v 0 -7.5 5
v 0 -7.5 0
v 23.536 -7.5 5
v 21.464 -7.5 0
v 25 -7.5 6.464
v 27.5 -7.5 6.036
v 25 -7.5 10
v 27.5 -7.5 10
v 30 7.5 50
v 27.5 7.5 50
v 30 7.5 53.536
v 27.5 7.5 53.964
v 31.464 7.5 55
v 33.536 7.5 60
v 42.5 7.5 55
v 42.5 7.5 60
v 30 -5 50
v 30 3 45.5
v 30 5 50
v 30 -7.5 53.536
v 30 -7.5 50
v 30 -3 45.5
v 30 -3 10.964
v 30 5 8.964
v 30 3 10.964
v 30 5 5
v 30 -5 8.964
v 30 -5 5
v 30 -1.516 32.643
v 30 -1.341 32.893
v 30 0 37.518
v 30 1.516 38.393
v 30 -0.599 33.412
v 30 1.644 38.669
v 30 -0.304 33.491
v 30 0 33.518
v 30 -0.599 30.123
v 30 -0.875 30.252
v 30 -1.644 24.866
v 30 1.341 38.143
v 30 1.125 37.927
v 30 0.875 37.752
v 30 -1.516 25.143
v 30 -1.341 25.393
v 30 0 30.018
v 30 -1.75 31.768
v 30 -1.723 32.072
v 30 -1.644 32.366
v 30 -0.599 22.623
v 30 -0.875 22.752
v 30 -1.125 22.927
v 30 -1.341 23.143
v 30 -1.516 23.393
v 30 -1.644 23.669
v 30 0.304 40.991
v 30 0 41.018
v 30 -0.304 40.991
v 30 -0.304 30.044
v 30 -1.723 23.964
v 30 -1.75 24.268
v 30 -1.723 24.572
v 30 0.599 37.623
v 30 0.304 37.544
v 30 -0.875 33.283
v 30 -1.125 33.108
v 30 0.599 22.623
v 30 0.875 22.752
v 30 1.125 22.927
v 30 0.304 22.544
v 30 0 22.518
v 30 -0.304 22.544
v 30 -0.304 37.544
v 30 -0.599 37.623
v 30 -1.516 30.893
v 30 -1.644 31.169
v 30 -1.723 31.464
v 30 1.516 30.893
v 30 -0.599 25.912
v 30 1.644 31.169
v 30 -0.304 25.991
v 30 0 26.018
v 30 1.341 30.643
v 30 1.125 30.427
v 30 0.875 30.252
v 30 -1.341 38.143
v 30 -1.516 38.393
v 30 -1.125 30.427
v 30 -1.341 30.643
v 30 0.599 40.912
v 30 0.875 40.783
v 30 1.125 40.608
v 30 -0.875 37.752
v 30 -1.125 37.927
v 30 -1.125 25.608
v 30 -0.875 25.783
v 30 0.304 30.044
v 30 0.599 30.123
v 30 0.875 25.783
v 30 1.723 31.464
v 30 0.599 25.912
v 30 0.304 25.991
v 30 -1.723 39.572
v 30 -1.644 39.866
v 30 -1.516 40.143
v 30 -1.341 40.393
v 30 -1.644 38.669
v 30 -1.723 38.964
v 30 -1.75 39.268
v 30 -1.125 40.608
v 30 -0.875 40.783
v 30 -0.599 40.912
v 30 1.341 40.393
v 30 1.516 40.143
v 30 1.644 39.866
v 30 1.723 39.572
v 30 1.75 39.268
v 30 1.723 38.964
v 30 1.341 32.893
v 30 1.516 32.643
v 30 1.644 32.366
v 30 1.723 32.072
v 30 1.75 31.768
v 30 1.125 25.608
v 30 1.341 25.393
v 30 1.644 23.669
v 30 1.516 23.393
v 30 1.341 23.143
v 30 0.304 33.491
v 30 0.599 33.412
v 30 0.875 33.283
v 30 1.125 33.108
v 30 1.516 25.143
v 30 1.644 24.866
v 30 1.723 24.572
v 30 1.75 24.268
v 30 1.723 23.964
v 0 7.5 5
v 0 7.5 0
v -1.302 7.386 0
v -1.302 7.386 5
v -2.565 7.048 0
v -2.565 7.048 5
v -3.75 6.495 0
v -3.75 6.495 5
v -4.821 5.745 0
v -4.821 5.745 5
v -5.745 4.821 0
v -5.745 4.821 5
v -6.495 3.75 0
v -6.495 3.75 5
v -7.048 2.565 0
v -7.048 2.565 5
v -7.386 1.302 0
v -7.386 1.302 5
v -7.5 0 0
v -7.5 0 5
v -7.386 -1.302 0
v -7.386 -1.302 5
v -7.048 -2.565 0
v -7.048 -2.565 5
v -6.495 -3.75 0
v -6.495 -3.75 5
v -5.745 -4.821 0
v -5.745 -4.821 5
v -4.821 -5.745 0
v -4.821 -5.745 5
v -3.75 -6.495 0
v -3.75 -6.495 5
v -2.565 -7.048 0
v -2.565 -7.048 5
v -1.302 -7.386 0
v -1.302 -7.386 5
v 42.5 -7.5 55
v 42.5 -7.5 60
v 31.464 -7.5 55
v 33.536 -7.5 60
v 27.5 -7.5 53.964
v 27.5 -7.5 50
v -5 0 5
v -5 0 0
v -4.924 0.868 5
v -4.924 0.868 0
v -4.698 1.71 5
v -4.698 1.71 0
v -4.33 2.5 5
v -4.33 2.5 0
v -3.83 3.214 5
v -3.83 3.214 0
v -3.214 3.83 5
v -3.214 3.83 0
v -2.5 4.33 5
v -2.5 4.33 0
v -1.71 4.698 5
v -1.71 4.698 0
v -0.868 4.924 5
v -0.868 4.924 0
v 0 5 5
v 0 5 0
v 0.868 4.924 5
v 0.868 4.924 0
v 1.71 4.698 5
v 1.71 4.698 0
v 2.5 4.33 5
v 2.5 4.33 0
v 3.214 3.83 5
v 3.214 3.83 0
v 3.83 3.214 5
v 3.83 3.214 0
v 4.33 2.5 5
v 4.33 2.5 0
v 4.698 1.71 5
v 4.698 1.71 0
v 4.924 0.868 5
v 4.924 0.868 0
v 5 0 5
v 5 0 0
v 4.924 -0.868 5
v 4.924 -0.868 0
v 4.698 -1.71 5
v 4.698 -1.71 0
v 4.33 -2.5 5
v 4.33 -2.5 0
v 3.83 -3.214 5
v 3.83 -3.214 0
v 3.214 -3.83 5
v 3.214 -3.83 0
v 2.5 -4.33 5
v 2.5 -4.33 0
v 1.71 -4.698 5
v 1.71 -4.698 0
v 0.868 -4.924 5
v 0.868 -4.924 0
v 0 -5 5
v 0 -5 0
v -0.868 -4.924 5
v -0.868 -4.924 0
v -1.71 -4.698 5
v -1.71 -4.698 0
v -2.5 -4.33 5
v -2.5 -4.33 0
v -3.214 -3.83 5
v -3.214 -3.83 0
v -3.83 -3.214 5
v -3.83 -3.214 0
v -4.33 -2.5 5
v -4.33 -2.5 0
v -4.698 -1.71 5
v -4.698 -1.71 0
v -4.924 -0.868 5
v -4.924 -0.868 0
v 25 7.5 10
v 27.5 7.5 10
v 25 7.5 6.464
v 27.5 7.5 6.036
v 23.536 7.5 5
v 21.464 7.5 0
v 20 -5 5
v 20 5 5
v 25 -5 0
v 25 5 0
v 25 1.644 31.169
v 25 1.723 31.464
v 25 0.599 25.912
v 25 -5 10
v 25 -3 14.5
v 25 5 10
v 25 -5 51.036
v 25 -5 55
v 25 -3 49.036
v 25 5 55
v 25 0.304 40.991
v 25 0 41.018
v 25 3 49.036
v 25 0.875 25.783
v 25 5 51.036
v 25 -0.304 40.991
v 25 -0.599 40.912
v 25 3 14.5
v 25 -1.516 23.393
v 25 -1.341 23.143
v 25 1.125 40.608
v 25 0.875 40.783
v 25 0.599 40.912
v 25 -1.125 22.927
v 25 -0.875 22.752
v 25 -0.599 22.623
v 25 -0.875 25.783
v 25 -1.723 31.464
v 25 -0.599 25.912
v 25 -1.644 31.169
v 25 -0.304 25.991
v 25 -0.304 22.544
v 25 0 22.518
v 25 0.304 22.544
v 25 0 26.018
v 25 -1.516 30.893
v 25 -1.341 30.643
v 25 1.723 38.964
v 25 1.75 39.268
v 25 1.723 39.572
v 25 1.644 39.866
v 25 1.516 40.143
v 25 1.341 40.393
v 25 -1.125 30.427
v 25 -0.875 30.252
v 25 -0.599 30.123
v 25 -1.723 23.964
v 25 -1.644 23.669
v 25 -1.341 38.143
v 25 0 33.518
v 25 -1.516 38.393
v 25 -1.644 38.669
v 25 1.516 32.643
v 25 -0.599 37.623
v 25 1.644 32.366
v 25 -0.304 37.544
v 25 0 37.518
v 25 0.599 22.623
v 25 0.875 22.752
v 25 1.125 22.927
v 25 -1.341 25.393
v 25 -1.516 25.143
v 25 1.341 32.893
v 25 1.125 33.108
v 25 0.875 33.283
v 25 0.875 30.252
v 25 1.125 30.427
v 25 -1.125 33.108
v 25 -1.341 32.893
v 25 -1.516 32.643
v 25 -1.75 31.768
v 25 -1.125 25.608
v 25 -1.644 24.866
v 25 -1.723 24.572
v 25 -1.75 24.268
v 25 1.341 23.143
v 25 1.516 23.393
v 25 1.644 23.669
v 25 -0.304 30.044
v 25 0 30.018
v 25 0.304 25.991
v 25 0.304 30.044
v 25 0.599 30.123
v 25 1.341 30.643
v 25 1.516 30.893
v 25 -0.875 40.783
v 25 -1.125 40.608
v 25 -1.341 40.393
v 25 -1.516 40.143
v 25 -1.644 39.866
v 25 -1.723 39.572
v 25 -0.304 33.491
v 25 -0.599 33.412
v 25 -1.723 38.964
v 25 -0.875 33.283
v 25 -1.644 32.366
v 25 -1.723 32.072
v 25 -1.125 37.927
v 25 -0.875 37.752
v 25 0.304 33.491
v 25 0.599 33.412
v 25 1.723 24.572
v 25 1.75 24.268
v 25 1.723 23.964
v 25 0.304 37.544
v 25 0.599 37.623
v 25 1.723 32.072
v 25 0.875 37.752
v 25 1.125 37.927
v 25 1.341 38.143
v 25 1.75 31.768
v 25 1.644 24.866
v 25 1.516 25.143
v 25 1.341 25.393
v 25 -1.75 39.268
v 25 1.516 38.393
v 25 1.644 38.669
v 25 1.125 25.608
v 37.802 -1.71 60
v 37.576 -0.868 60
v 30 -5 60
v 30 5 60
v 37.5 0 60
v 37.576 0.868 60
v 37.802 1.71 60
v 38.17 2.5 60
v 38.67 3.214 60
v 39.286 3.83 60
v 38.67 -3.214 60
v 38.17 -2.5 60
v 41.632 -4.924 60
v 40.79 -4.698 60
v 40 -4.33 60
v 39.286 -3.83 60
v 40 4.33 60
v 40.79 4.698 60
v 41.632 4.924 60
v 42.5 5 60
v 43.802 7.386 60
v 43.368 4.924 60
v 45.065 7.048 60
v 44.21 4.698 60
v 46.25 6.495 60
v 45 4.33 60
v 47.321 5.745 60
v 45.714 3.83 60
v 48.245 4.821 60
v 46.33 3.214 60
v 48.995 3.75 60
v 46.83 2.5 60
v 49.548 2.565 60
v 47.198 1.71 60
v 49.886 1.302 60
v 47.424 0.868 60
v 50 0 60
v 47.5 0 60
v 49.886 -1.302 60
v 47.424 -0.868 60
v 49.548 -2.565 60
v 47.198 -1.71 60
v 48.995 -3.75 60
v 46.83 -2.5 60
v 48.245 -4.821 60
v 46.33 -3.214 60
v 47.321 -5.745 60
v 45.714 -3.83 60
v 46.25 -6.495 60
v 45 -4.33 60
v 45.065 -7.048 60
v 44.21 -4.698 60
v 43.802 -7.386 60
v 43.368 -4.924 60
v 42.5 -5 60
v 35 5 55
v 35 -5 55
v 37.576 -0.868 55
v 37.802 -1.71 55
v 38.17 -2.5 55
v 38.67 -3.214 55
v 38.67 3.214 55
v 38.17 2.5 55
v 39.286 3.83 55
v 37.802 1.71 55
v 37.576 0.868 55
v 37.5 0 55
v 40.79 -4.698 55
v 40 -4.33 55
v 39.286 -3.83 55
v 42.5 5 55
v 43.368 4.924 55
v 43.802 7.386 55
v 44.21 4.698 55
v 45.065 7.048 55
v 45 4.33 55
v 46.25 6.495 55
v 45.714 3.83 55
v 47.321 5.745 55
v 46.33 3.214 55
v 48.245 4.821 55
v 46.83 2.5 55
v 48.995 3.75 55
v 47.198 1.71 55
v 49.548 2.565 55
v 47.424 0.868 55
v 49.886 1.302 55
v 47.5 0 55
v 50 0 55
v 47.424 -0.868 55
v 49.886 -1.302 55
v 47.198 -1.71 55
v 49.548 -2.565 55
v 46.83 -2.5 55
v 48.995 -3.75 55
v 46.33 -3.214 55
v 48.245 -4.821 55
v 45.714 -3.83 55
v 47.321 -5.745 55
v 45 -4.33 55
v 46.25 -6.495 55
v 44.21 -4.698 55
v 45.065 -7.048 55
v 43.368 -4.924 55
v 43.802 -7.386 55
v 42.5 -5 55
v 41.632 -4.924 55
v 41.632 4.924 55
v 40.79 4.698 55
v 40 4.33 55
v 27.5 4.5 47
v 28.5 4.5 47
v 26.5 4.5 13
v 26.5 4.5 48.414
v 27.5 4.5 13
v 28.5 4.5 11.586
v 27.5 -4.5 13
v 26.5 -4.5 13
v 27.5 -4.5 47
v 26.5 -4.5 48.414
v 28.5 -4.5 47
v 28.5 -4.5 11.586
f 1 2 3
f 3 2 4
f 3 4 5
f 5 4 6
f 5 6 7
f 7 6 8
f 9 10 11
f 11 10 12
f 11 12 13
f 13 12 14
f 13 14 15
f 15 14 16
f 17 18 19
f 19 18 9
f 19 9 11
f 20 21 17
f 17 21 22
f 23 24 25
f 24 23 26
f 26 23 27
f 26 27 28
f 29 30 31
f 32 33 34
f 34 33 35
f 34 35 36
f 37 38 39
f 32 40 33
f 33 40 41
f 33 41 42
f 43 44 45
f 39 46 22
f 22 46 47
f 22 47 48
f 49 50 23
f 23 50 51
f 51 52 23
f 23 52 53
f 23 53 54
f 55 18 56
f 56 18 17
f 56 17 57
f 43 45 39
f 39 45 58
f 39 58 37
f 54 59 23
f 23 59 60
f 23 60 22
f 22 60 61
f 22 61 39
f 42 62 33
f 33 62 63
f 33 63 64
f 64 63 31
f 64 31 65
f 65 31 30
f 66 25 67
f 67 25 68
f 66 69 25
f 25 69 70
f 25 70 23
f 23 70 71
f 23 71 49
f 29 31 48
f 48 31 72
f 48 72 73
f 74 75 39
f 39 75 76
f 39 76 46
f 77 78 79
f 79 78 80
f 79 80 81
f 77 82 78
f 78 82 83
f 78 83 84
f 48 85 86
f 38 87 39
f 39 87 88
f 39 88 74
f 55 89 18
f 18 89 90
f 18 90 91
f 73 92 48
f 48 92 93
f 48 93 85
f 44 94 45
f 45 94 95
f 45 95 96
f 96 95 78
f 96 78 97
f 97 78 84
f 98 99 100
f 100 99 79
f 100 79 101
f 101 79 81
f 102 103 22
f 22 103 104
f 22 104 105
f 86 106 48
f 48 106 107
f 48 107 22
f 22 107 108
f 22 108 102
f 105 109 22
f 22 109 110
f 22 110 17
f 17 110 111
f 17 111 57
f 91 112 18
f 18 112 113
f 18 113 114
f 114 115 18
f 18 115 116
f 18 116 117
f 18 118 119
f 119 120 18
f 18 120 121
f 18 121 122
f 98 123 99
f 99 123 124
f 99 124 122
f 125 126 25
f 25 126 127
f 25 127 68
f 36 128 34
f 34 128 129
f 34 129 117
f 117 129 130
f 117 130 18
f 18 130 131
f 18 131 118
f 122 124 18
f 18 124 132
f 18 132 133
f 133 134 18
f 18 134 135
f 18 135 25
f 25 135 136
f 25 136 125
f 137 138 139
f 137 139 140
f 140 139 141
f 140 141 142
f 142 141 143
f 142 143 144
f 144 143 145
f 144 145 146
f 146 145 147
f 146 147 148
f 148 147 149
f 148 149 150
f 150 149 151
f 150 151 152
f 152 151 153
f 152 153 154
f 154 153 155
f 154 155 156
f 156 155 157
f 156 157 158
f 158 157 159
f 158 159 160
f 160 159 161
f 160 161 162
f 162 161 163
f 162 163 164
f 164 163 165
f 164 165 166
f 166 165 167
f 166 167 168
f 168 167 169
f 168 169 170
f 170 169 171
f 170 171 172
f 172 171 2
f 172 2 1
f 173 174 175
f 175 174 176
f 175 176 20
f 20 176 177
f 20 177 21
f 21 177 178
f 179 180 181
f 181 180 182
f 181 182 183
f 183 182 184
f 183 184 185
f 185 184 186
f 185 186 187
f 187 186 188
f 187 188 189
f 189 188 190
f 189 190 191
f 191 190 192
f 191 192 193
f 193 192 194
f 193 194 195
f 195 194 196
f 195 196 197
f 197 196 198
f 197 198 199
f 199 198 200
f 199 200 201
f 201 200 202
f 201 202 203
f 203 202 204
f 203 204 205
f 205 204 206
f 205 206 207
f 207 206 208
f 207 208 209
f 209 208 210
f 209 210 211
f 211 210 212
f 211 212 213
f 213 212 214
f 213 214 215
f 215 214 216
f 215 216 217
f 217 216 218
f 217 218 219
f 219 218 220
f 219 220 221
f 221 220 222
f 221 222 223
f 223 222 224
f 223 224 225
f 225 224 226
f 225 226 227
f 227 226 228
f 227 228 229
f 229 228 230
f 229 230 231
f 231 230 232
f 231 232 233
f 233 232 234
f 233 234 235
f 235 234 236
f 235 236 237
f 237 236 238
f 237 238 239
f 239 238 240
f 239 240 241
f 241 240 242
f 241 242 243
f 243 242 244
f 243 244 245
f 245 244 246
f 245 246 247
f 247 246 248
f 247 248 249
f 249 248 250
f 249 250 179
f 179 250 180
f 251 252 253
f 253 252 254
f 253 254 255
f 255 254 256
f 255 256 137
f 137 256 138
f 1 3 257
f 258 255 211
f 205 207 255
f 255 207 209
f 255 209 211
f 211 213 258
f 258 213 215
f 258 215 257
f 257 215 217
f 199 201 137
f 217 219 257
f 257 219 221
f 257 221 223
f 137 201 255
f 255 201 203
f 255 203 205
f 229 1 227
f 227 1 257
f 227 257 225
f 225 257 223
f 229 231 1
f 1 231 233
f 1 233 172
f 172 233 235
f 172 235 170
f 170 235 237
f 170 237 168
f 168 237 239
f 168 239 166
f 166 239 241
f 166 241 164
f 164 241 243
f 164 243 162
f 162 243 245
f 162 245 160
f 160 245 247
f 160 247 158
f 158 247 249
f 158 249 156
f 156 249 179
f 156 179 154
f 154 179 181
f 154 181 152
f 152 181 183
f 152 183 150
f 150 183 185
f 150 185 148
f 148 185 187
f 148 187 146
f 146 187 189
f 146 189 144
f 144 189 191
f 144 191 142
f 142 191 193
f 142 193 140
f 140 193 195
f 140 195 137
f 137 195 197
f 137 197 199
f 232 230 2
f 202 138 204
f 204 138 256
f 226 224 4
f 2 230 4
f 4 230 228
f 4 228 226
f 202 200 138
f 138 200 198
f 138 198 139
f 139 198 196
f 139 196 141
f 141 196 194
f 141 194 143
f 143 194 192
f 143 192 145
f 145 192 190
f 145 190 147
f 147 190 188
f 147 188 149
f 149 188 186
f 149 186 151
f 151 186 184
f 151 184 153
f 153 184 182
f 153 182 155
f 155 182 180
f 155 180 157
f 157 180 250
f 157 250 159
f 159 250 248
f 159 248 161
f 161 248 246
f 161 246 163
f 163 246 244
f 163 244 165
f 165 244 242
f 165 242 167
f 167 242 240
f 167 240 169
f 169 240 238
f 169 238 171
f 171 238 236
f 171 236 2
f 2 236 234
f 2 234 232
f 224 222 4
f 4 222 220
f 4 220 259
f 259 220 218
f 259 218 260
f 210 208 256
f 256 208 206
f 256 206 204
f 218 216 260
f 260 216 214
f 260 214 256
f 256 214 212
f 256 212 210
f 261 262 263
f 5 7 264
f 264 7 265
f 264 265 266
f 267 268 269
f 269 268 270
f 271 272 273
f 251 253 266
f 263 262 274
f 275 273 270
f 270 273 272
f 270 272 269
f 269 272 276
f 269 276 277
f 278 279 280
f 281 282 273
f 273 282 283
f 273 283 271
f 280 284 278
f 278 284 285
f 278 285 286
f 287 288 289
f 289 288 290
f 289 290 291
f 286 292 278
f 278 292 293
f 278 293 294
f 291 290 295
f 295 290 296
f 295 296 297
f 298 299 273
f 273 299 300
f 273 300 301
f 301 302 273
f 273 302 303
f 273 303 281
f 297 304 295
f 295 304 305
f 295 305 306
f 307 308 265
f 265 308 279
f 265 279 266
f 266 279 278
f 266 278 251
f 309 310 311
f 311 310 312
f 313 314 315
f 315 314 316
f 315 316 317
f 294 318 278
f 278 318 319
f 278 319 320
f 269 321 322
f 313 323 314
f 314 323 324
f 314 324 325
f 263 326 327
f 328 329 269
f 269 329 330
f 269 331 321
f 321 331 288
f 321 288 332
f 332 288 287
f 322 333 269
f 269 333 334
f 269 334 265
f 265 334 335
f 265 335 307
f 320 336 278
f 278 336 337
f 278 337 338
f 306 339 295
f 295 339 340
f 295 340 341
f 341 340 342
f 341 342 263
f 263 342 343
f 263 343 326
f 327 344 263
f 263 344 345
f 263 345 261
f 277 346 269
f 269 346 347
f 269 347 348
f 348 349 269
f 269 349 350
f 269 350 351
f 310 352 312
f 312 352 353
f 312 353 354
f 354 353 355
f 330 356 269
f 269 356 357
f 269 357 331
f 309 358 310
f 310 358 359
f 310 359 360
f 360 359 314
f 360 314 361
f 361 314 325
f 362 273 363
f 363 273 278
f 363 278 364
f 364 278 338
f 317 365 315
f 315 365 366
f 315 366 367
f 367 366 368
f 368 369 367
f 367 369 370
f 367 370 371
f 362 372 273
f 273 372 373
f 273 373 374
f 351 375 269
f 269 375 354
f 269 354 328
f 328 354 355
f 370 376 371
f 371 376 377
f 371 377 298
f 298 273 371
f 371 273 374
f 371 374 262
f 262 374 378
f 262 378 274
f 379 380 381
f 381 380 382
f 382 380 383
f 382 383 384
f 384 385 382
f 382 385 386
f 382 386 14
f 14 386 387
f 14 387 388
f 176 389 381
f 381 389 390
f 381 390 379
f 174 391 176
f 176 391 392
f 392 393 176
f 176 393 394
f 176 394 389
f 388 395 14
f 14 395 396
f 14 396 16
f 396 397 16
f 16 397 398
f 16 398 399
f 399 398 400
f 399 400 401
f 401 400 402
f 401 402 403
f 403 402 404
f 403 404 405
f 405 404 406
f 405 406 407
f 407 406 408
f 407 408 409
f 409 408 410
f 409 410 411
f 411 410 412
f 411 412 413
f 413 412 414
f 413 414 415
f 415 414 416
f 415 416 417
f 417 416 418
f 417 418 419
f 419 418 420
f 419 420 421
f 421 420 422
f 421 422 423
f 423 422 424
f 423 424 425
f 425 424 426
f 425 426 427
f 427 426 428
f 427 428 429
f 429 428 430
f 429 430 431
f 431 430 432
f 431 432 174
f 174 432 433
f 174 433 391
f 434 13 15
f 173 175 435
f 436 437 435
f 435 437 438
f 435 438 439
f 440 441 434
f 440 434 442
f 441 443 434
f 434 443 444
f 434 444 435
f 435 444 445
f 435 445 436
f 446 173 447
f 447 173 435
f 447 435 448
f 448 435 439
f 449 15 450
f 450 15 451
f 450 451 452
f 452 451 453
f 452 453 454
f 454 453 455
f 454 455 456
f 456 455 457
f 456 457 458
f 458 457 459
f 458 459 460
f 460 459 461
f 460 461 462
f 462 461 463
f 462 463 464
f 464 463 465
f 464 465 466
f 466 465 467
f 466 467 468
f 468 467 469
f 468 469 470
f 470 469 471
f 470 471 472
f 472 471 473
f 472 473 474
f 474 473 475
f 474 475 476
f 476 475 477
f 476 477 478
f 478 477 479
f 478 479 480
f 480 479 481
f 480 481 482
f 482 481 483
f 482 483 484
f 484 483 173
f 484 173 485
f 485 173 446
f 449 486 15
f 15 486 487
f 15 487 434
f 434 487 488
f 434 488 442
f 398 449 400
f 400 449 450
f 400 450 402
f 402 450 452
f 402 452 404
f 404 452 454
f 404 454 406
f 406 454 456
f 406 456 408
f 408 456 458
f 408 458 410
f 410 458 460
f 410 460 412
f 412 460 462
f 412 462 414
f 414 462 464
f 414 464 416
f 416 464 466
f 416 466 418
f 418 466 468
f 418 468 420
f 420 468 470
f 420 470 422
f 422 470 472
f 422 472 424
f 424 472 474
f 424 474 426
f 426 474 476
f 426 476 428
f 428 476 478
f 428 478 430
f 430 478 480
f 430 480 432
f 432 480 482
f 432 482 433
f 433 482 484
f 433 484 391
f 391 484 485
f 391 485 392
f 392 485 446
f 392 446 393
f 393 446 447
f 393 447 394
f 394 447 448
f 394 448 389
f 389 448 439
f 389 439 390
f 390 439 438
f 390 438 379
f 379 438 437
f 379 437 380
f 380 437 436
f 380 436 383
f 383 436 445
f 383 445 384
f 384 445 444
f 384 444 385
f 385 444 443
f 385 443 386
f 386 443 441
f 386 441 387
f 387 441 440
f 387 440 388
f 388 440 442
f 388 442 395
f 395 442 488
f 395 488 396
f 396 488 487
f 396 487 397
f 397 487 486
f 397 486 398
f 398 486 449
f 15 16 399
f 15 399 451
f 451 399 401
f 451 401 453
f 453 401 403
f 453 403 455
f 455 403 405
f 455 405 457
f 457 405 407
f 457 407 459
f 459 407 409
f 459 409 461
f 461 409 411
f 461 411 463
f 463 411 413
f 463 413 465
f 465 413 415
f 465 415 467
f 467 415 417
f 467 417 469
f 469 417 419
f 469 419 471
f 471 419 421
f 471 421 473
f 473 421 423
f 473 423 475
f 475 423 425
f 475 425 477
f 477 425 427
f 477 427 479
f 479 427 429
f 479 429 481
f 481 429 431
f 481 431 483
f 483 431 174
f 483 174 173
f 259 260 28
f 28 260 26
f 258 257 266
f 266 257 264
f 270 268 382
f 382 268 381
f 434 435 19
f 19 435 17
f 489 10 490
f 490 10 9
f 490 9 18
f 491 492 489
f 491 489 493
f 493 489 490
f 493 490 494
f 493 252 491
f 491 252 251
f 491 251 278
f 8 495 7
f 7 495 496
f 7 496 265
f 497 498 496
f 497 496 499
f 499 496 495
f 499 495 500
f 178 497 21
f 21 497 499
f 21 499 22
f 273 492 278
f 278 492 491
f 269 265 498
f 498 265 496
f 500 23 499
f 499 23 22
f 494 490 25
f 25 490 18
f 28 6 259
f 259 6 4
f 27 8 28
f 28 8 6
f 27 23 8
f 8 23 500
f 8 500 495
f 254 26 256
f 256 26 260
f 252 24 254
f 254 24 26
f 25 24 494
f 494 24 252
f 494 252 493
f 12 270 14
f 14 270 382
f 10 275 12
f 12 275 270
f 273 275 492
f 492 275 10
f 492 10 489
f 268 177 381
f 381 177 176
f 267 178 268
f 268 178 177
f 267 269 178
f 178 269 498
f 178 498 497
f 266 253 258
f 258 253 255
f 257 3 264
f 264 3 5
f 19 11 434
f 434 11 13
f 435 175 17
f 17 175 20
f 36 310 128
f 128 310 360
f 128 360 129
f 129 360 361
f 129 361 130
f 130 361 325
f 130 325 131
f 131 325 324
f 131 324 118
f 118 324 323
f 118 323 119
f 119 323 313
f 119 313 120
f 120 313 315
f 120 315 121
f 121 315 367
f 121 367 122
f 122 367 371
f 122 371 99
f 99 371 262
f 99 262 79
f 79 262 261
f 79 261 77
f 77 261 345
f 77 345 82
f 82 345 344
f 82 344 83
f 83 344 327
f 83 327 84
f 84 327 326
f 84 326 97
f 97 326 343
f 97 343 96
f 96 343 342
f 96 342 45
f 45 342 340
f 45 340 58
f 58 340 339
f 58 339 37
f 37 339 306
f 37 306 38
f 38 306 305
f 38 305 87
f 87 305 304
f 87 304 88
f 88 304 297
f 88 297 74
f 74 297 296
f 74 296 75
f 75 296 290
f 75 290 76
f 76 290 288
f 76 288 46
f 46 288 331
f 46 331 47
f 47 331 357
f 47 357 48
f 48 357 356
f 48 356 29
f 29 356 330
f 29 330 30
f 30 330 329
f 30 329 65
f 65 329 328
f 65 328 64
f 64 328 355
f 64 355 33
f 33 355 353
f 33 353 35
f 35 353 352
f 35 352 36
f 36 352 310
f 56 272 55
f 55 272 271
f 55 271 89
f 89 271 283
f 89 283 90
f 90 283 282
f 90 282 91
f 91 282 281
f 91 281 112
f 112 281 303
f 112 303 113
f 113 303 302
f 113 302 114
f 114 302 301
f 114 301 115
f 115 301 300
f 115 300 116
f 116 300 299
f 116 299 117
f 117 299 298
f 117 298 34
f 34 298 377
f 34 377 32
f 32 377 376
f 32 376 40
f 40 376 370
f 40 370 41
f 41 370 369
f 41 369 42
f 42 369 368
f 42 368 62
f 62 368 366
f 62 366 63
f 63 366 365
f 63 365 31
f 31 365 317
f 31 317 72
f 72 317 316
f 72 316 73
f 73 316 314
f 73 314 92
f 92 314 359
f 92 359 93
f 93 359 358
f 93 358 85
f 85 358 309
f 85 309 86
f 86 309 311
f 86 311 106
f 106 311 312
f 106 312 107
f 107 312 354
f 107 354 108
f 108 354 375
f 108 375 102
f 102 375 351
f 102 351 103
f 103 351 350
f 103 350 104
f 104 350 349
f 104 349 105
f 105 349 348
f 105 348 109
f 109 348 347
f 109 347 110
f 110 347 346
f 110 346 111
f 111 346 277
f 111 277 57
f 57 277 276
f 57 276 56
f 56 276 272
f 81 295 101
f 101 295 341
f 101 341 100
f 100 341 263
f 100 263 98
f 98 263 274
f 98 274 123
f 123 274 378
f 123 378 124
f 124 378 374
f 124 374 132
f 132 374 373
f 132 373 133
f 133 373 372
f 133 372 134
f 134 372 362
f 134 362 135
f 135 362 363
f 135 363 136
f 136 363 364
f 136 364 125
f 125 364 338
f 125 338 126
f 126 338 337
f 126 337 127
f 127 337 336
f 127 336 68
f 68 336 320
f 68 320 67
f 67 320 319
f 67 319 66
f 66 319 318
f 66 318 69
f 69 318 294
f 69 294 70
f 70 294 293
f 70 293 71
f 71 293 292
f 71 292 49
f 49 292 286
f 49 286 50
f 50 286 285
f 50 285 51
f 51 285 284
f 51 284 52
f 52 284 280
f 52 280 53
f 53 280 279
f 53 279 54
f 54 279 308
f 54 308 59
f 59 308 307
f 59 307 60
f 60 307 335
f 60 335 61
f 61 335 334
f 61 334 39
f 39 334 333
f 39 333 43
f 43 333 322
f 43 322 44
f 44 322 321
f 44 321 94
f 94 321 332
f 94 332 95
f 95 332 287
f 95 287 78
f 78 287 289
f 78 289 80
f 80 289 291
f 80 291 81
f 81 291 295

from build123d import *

# Parameters (mm, degrees)
SKETCH1_R           = 7.5
SKETCH1_R_2         = 5
BOSS_EXTRUDE1_DEPTH = 5
SKETCH2_W           = 5
SKETCH2_H           = 15
BOSS_EXTRUDE2_DEPTH = 55
SKETCH3_W           = 5
SKETCH3_H           = 15
BOSS_EXTRUDE3_DEPTH = 20
SKETCH4_R           = 5
CUT_EXTRUDE1_DEPTH  = 15
FILLET1_R           = 7.5
CHAMFER1_SIZE       = 5
CUT_EXTRUDE2_DEPTH  = 5
CHAMFER2_SIZE       = 1.5
CHAMFER3_SIZE       = 2.5
CHAMFER4_SIZE       = 2.5
SKETCH6_R           = 1.75
CUT_EXTRUDE3_DEPTH  = 10


with BuildPart() as part:
    # Sketch1 → Boss-Extrude1 (new body)
    # profile 1 of 2: a face of its own
    with BuildSketch(Plane.XY):
        Circle(SKETCH1_R)
        Circle(SKETCH1_R_2, mode=Mode.SUBTRACT)
    # profile 2 of 2: a face of its own
    with BuildSketch(Plane.XY):
        with BuildLine():
            Line((30, 7.5), (0, 7.5))
            ThreePointArc((0, 7.5), (5.303300859, 5.303300859), (7.5, 0))
            ThreePointArc((7.5, 0), (5.303300859, -5.303300859), (0, -7.5))
            Line((0, -7.5), (30, -7.5))
            Line((30, -7.5), (30, 7.5))
        make_face()
    extrude(amount=BOSS_EXTRUDE1_DEPTH)

    # Sketch2 → Boss-Extrude2 (add)
    with BuildSketch(Plane.XY.offset(5)):
        with Locations((27.5, 0)):
            Rectangle(SKETCH2_W, SKETCH2_H)
    extrude(amount=BOSS_EXTRUDE2_DEPTH)

    # Sketch3 → Boss-Extrude3 (add)
    with BuildSketch(Plane(origin=(30, 0, 0), x_dir=(0, 0, -1), z_dir=(1, 0, 0))):
        with Locations((-57.5, 0)):
            Rectangle(SKETCH3_W, SKETCH3_H)
    extrude(amount=BOSS_EXTRUDE3_DEPTH)

    # Sketch4 → Cut-Extrude1 (cut)
    with BuildSketch(Plane(origin=(0, 0, 55), x_dir=(-1, 0, 0), z_dir=(0, 0, -1))):
        with Locations(Location((-42.5, 0, 0), (0, 0, 90))):
            Circle(SKETCH4_R)
    extrude(amount=-CUT_EXTRUDE1_DEPTH, mode=Mode.SUBTRACT)

    # Fillet1
    fillet1_edges = [part.edges().sort_by_distance(p)[0] for p in [
        (50, -7.5, 57.5),
        (50, 7.5, 57.5),
    ]]
    fillet(fillet1_edges, radius=FILLET1_R - 0.0001)  # a hair under: the kernel refuses the full size

    # Chamfer1
    chamfer1_edges = [part.edges().sort_by_distance(p)[0] for p in [
        (25, 0, 5),
        (25, 0, 60),
        (30, 0, 55),
        (30, 0, 0),
    ]]
    chamfer(chamfer1_edges, length=CHAMFER1_SIZE)

    # Sketch5 → Cut-Extrude2 (cut)
    with BuildSketch(Plane.ZY.offset(-25)):
        Polygon((10, -7.5), (13, -4.5), (47, -4.5), (50, -7.5), align=None)
        Polygon((50, 7.5), (10, 7.5), (13, 4.5), (47, 4.5), align=None)
    extrude(amount=-CUT_EXTRUDE2_DEPTH, mode=Mode.SUBTRACT)

    # Chamfer2
    chamfer2_edges = [part.edges().sort_by_distance(p)[0] for p in [
        (25, -4.5, 30),
        (30, 4.5, 30),
        (25, 4.5, 30),
        (30, -4.5, 30),
    ]]
    chamfer(chamfer2_edges, length=CHAMFER2_SIZE)

    # Chamfer3
    chamfer3_edges = [part.edges().sort_by_distance(p)[0] for p in [
        (30, 5.25, 12.25),
        (25, 5.25, 47.75),
        (25, 7.5, 52.5),
        (27.5, 7.5, 57.5),
        (27.5, 7.5, 2.5),
        (25, -7.5, 52.5),
        (27.5, -7.5, 57.5),
        (27.5, -7.5, 2.5),
        (30, 7.5, 7.5),
        (30, -7.5, 7.5),
        (30, -5.25, 12.25),
        (25, -5.25, 47.75),
    ]]
    chamfer(chamfer3_edges, length=CHAMFER3_SIZE)

    # Chamfer4
    chamfer4_edges = [part.edges().sort_by_distance(p)[0] for p in [
        (22.5, -7.5, 7.5),
        (22.5, 7.5, 7.5),
        (32.5, 7.5, 52.5),
        (32.5, -7.5, 52.5),
    ]]
    chamfer(chamfer4_edges, length=CHAMFER4_SIZE)

    # Sketch6 → Cut-Extrude3 (cut)
    with BuildSketch(Plane.ZY.offset(-25)):
        with Locations((31.767766953, 0)):
            Circle(SKETCH6_R)
        with Locations((39.267766953, 0)):
            Circle(SKETCH6_R)
        with Locations((24.267766953, 0)):
            Circle(SKETCH6_R)
    extrude(amount=-CUT_EXTRUDE3_DEPTH, mode=Mode.SUBTRACT)


solid = part.part
